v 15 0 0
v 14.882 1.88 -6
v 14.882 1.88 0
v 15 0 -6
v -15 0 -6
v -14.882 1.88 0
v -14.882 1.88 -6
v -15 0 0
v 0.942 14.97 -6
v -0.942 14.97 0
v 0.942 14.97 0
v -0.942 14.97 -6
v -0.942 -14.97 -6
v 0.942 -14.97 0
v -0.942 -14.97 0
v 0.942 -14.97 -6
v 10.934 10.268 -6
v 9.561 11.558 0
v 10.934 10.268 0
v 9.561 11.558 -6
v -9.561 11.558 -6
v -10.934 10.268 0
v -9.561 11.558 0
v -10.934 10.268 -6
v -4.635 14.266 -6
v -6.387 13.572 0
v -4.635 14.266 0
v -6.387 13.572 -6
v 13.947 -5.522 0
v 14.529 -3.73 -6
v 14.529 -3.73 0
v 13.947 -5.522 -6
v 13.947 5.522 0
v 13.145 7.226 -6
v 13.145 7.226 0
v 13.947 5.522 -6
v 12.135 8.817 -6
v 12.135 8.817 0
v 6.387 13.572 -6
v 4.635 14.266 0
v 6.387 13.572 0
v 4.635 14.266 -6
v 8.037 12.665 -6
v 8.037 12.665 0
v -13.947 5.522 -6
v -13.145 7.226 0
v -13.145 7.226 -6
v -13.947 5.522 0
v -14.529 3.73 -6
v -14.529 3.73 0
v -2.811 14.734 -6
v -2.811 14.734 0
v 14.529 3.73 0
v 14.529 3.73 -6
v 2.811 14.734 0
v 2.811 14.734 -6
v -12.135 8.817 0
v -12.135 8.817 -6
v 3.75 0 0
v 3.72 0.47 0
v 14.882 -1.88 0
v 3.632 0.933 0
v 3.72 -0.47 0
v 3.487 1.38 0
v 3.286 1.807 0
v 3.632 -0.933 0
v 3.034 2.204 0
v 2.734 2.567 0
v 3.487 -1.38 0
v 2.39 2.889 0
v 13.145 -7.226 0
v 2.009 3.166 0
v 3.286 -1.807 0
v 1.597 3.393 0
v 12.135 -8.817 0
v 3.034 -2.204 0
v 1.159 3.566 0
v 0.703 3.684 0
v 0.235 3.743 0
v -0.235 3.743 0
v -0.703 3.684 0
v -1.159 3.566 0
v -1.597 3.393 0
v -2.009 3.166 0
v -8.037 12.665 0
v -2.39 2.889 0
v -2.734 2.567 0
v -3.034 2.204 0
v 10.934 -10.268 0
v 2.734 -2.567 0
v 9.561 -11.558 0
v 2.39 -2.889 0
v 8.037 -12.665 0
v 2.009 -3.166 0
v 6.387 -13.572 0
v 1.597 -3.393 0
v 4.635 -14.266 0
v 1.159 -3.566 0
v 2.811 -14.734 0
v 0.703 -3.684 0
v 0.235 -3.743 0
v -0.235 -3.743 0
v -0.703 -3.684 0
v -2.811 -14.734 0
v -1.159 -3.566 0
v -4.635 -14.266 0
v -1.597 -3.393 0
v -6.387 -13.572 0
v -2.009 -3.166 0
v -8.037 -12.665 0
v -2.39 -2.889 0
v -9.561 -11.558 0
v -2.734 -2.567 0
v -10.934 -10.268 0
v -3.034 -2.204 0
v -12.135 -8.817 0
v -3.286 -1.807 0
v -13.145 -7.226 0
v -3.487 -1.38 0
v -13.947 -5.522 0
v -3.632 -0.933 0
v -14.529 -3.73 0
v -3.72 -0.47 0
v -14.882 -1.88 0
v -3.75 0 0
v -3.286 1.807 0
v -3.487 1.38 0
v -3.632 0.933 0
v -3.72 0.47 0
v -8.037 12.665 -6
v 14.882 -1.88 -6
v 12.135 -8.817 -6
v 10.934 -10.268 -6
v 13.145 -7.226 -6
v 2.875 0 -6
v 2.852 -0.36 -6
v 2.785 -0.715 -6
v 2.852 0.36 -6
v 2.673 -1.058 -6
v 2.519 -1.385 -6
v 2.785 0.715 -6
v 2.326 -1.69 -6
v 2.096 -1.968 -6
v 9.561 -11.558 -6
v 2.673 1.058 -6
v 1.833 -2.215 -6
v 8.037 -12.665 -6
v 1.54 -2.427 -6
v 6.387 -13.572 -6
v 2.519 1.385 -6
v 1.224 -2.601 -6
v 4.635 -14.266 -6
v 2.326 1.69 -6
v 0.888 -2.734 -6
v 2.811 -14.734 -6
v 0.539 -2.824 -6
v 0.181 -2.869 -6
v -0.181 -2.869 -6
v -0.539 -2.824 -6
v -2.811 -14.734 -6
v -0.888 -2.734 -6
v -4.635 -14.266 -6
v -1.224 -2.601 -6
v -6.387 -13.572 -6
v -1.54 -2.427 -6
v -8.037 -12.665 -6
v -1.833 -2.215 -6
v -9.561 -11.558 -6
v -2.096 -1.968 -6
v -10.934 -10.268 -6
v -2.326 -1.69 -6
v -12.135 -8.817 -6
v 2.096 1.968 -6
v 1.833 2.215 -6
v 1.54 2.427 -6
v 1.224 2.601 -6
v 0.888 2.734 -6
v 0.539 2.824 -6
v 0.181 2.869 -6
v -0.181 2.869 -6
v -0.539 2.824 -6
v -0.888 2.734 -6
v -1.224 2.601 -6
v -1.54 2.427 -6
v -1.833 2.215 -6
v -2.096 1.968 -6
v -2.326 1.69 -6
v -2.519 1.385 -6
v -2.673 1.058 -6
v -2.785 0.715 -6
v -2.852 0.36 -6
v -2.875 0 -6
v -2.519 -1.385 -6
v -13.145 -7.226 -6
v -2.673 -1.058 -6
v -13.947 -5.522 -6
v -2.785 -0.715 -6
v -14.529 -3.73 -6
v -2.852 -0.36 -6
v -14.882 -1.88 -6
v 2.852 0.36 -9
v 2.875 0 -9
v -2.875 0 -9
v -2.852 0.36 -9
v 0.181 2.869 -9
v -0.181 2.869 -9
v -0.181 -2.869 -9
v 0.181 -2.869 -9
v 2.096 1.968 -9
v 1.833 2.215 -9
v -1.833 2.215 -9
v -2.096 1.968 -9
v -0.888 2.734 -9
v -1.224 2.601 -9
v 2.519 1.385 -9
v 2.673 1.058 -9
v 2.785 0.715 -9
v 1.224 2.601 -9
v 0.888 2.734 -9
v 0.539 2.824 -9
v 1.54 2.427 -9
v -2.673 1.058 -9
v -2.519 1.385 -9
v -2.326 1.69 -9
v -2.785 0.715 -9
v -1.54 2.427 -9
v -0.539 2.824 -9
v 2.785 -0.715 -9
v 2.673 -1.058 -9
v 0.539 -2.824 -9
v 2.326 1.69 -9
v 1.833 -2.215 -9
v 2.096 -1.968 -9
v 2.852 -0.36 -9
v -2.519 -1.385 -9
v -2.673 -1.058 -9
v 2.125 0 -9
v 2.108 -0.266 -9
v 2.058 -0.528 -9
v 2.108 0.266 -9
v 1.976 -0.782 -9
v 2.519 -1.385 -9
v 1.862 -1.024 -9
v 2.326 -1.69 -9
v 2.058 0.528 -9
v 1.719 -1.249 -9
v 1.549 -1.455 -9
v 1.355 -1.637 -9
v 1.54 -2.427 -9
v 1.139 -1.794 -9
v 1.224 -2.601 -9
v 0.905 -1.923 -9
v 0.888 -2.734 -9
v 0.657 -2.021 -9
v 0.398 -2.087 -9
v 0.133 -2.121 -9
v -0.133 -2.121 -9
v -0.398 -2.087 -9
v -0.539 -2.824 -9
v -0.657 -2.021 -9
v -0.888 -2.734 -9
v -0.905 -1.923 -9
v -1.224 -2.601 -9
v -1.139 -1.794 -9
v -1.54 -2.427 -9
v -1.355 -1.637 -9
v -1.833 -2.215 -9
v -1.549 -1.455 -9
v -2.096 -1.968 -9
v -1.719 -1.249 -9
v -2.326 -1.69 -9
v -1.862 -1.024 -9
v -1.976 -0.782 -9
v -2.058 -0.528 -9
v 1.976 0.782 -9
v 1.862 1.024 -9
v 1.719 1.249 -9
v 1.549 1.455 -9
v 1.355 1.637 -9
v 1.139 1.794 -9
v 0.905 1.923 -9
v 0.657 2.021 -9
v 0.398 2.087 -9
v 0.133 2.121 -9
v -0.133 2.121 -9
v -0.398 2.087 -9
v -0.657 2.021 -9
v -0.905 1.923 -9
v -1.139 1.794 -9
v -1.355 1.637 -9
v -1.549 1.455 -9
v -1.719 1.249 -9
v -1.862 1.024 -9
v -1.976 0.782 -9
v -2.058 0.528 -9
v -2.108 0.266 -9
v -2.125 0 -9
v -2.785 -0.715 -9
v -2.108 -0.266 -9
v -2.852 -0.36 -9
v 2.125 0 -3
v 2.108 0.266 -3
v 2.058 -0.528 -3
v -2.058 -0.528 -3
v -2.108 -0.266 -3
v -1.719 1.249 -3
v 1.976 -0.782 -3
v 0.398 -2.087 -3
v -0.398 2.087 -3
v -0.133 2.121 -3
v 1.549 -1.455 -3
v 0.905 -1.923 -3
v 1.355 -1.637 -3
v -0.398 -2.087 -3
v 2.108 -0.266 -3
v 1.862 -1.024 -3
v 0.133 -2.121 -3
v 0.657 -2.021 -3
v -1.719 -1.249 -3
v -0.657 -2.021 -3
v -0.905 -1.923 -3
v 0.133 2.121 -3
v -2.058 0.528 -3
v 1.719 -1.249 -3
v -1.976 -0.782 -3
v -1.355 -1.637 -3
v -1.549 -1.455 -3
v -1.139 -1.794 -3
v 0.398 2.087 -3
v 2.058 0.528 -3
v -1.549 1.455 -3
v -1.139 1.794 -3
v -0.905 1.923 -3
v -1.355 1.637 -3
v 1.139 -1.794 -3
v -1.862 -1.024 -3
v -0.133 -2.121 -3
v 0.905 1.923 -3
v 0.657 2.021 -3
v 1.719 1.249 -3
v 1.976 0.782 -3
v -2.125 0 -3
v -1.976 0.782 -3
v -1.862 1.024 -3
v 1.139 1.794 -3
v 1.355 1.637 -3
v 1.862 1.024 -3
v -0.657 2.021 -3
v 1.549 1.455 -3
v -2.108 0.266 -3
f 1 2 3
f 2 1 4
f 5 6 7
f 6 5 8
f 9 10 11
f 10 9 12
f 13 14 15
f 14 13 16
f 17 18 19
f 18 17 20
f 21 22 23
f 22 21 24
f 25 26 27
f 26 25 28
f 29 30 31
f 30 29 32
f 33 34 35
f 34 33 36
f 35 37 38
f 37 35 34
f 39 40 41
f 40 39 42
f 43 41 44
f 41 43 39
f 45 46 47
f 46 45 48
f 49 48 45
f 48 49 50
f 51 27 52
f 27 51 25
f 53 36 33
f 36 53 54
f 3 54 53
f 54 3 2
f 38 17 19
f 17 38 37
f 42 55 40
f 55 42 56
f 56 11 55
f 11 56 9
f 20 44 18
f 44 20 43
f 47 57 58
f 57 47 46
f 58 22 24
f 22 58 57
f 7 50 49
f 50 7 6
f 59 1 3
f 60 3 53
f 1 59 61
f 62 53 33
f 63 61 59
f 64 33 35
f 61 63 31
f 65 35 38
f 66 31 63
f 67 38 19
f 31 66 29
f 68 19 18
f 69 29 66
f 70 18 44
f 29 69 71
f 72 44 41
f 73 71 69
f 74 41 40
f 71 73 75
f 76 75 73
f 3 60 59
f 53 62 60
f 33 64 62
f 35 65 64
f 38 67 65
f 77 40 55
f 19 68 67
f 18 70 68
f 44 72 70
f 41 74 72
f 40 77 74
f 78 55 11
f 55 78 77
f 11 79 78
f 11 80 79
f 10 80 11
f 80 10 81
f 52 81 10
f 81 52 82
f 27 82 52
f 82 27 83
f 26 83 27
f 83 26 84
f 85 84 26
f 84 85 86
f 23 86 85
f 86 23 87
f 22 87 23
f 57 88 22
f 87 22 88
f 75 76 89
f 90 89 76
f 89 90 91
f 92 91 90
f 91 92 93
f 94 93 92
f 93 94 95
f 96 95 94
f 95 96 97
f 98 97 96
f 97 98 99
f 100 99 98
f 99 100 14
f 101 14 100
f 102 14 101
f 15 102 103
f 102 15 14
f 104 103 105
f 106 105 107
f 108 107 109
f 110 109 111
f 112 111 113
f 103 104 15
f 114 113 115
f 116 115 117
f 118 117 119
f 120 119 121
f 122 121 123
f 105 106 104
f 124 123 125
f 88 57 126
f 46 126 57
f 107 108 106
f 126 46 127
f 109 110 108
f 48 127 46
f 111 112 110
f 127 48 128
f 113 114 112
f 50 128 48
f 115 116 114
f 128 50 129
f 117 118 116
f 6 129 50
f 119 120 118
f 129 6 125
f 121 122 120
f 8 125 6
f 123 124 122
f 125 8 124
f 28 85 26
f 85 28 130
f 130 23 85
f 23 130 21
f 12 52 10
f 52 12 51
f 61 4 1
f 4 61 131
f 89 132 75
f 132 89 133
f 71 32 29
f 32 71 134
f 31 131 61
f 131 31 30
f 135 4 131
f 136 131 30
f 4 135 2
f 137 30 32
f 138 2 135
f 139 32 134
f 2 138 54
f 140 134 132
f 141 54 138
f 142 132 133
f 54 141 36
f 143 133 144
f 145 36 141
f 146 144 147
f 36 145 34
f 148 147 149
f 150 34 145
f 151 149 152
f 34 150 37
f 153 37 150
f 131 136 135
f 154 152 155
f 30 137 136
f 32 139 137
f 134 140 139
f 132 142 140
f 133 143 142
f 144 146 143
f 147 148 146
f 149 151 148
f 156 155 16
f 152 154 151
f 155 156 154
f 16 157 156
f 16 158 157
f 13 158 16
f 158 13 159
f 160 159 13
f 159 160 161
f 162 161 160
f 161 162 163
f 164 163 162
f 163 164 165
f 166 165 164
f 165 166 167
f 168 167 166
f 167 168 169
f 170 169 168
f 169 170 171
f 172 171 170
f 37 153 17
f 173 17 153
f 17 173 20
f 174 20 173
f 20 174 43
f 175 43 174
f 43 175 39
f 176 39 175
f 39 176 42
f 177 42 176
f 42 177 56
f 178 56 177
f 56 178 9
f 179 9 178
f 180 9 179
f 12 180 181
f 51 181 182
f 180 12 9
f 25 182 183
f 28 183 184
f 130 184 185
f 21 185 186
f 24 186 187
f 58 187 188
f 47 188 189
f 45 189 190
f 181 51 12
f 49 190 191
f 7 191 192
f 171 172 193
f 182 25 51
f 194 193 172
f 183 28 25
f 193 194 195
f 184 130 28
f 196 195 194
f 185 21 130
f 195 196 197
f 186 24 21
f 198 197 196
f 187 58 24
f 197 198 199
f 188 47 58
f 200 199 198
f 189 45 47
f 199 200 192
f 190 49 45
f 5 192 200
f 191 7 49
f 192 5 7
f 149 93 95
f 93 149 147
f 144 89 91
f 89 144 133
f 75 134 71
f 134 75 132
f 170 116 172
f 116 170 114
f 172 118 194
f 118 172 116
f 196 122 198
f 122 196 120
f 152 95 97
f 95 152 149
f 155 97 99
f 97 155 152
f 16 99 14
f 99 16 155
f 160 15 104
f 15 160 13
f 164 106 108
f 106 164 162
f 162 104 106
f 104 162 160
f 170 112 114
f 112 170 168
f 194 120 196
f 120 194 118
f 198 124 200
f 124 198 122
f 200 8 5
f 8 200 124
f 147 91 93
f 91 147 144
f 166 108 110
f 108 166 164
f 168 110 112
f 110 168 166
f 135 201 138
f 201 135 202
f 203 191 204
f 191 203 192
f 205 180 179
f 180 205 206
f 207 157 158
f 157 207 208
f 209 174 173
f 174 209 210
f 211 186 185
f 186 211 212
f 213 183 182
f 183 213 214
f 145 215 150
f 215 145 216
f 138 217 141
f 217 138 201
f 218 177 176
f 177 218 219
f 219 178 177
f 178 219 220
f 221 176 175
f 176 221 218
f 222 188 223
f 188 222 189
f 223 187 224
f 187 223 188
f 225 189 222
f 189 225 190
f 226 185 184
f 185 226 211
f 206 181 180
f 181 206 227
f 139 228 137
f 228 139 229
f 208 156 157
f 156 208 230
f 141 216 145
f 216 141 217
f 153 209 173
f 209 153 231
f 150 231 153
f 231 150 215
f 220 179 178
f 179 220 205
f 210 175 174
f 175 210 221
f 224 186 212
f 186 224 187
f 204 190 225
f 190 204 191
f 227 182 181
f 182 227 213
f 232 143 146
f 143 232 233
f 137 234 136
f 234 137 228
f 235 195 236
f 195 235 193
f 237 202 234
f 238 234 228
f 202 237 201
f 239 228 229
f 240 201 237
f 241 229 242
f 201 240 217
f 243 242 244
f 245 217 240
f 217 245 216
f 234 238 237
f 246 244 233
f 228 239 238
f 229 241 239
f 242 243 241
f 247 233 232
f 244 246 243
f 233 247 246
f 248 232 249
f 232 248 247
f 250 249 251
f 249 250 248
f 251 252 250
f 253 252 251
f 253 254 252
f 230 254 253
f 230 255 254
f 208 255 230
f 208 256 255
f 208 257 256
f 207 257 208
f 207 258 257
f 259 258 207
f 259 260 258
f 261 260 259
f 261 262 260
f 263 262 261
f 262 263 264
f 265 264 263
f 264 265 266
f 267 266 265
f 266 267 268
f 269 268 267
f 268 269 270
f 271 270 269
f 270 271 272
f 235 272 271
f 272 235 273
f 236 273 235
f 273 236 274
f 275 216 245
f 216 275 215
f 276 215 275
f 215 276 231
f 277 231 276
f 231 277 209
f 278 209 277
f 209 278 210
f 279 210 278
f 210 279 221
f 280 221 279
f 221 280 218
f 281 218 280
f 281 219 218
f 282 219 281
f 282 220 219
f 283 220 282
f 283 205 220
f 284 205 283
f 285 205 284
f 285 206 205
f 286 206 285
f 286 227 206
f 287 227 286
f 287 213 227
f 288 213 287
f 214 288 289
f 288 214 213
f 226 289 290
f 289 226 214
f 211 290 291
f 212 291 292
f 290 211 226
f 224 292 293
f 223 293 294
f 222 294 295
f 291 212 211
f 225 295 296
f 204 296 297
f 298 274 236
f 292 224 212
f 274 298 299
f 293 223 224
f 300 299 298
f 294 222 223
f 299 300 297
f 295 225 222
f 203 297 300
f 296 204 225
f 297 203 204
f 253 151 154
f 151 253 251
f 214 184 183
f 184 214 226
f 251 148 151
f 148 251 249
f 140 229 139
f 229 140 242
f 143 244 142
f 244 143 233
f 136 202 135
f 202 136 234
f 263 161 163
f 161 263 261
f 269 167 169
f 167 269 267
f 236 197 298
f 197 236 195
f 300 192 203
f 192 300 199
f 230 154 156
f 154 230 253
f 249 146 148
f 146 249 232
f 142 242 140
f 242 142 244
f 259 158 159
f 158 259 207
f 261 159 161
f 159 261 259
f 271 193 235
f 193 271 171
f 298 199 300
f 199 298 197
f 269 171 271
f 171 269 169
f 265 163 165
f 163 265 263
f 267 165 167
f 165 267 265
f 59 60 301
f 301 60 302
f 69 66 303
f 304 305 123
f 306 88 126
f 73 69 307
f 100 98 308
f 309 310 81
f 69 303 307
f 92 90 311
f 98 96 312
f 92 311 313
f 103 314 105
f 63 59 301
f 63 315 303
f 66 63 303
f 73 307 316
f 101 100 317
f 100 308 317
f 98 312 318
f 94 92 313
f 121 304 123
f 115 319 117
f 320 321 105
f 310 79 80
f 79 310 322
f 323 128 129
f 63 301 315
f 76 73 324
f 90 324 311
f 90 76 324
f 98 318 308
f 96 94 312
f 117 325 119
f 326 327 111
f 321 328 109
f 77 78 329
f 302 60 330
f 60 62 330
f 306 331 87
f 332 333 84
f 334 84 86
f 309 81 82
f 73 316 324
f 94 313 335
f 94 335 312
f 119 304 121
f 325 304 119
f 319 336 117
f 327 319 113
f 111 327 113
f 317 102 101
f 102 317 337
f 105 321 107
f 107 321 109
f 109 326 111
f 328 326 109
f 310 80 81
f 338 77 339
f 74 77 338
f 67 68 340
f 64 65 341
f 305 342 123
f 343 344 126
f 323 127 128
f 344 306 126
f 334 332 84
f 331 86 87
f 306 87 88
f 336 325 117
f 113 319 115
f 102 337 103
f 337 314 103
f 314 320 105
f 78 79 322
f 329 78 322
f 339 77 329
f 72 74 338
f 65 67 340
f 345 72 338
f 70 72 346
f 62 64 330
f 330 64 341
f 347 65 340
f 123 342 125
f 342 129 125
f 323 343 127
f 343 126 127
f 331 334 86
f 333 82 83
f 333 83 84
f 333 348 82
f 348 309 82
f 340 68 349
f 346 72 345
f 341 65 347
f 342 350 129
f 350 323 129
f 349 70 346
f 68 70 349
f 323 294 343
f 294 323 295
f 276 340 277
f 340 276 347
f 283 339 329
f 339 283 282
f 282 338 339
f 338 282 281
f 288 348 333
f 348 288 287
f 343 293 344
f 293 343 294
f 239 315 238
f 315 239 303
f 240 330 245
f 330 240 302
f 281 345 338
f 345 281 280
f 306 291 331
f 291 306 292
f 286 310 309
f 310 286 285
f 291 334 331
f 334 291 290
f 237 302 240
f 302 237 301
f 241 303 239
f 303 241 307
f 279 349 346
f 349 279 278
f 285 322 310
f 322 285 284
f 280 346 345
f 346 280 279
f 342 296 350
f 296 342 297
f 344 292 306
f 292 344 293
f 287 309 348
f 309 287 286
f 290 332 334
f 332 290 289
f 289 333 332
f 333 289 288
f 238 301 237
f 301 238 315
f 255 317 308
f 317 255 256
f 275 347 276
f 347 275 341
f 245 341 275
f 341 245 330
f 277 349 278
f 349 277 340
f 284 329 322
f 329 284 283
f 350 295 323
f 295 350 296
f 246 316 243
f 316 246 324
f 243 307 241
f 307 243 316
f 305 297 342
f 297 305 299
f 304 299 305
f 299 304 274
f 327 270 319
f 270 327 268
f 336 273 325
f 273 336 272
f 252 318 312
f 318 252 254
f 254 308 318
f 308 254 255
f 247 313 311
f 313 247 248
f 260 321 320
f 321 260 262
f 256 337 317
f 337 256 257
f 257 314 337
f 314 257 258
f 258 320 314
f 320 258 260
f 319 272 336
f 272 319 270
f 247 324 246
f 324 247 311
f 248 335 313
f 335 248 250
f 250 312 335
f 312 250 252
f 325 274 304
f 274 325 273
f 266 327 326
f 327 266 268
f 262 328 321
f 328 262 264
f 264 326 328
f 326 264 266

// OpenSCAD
$fn = 50;


difference() {
	union() {
		translate(v = [0, 0, -6.0000000000]) {
			cylinder(h = 6, r = 15.0000000000);
		}
		translate(v = [0, 0, -9.0000000000]) {
			cylinder(h = 9, r = 2.8750000000);
		}
	}
	union() {
		translate(v = [0, 0, 0]) {
			rotate(a = [0, 0, 0]) {
				difference() {
					union() {
						translate(v = [0, 0, -9.0000000000]) {
							cylinder(h = 9, r = 2.0000000000);
						}
						translate(v = [0, 0, -3]) {
							cylinder(h = 3, r1 = 2.1250000000, r2 = 3.7500000000);
						}
						translate(v = [0, 0, -9.0000000000]) {
							cylinder(h = 9, r = 2.1250000000);
						}
						translate(v = [0, 0, -9.0000000000]) {
							cylinder(h = 9, r = 2.0000000000);
						}
					}
					union();
				}
			}
		}
	}
}
